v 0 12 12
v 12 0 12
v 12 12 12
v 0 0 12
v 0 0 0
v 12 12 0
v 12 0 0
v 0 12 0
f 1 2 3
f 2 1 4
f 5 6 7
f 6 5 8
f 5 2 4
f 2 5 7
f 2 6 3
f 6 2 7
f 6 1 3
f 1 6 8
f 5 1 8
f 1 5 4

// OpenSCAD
// `each` over a string yields its characters, so this list has two entries.
chars = [for (c = "ab") c];
cube(len(chars) * 6);
